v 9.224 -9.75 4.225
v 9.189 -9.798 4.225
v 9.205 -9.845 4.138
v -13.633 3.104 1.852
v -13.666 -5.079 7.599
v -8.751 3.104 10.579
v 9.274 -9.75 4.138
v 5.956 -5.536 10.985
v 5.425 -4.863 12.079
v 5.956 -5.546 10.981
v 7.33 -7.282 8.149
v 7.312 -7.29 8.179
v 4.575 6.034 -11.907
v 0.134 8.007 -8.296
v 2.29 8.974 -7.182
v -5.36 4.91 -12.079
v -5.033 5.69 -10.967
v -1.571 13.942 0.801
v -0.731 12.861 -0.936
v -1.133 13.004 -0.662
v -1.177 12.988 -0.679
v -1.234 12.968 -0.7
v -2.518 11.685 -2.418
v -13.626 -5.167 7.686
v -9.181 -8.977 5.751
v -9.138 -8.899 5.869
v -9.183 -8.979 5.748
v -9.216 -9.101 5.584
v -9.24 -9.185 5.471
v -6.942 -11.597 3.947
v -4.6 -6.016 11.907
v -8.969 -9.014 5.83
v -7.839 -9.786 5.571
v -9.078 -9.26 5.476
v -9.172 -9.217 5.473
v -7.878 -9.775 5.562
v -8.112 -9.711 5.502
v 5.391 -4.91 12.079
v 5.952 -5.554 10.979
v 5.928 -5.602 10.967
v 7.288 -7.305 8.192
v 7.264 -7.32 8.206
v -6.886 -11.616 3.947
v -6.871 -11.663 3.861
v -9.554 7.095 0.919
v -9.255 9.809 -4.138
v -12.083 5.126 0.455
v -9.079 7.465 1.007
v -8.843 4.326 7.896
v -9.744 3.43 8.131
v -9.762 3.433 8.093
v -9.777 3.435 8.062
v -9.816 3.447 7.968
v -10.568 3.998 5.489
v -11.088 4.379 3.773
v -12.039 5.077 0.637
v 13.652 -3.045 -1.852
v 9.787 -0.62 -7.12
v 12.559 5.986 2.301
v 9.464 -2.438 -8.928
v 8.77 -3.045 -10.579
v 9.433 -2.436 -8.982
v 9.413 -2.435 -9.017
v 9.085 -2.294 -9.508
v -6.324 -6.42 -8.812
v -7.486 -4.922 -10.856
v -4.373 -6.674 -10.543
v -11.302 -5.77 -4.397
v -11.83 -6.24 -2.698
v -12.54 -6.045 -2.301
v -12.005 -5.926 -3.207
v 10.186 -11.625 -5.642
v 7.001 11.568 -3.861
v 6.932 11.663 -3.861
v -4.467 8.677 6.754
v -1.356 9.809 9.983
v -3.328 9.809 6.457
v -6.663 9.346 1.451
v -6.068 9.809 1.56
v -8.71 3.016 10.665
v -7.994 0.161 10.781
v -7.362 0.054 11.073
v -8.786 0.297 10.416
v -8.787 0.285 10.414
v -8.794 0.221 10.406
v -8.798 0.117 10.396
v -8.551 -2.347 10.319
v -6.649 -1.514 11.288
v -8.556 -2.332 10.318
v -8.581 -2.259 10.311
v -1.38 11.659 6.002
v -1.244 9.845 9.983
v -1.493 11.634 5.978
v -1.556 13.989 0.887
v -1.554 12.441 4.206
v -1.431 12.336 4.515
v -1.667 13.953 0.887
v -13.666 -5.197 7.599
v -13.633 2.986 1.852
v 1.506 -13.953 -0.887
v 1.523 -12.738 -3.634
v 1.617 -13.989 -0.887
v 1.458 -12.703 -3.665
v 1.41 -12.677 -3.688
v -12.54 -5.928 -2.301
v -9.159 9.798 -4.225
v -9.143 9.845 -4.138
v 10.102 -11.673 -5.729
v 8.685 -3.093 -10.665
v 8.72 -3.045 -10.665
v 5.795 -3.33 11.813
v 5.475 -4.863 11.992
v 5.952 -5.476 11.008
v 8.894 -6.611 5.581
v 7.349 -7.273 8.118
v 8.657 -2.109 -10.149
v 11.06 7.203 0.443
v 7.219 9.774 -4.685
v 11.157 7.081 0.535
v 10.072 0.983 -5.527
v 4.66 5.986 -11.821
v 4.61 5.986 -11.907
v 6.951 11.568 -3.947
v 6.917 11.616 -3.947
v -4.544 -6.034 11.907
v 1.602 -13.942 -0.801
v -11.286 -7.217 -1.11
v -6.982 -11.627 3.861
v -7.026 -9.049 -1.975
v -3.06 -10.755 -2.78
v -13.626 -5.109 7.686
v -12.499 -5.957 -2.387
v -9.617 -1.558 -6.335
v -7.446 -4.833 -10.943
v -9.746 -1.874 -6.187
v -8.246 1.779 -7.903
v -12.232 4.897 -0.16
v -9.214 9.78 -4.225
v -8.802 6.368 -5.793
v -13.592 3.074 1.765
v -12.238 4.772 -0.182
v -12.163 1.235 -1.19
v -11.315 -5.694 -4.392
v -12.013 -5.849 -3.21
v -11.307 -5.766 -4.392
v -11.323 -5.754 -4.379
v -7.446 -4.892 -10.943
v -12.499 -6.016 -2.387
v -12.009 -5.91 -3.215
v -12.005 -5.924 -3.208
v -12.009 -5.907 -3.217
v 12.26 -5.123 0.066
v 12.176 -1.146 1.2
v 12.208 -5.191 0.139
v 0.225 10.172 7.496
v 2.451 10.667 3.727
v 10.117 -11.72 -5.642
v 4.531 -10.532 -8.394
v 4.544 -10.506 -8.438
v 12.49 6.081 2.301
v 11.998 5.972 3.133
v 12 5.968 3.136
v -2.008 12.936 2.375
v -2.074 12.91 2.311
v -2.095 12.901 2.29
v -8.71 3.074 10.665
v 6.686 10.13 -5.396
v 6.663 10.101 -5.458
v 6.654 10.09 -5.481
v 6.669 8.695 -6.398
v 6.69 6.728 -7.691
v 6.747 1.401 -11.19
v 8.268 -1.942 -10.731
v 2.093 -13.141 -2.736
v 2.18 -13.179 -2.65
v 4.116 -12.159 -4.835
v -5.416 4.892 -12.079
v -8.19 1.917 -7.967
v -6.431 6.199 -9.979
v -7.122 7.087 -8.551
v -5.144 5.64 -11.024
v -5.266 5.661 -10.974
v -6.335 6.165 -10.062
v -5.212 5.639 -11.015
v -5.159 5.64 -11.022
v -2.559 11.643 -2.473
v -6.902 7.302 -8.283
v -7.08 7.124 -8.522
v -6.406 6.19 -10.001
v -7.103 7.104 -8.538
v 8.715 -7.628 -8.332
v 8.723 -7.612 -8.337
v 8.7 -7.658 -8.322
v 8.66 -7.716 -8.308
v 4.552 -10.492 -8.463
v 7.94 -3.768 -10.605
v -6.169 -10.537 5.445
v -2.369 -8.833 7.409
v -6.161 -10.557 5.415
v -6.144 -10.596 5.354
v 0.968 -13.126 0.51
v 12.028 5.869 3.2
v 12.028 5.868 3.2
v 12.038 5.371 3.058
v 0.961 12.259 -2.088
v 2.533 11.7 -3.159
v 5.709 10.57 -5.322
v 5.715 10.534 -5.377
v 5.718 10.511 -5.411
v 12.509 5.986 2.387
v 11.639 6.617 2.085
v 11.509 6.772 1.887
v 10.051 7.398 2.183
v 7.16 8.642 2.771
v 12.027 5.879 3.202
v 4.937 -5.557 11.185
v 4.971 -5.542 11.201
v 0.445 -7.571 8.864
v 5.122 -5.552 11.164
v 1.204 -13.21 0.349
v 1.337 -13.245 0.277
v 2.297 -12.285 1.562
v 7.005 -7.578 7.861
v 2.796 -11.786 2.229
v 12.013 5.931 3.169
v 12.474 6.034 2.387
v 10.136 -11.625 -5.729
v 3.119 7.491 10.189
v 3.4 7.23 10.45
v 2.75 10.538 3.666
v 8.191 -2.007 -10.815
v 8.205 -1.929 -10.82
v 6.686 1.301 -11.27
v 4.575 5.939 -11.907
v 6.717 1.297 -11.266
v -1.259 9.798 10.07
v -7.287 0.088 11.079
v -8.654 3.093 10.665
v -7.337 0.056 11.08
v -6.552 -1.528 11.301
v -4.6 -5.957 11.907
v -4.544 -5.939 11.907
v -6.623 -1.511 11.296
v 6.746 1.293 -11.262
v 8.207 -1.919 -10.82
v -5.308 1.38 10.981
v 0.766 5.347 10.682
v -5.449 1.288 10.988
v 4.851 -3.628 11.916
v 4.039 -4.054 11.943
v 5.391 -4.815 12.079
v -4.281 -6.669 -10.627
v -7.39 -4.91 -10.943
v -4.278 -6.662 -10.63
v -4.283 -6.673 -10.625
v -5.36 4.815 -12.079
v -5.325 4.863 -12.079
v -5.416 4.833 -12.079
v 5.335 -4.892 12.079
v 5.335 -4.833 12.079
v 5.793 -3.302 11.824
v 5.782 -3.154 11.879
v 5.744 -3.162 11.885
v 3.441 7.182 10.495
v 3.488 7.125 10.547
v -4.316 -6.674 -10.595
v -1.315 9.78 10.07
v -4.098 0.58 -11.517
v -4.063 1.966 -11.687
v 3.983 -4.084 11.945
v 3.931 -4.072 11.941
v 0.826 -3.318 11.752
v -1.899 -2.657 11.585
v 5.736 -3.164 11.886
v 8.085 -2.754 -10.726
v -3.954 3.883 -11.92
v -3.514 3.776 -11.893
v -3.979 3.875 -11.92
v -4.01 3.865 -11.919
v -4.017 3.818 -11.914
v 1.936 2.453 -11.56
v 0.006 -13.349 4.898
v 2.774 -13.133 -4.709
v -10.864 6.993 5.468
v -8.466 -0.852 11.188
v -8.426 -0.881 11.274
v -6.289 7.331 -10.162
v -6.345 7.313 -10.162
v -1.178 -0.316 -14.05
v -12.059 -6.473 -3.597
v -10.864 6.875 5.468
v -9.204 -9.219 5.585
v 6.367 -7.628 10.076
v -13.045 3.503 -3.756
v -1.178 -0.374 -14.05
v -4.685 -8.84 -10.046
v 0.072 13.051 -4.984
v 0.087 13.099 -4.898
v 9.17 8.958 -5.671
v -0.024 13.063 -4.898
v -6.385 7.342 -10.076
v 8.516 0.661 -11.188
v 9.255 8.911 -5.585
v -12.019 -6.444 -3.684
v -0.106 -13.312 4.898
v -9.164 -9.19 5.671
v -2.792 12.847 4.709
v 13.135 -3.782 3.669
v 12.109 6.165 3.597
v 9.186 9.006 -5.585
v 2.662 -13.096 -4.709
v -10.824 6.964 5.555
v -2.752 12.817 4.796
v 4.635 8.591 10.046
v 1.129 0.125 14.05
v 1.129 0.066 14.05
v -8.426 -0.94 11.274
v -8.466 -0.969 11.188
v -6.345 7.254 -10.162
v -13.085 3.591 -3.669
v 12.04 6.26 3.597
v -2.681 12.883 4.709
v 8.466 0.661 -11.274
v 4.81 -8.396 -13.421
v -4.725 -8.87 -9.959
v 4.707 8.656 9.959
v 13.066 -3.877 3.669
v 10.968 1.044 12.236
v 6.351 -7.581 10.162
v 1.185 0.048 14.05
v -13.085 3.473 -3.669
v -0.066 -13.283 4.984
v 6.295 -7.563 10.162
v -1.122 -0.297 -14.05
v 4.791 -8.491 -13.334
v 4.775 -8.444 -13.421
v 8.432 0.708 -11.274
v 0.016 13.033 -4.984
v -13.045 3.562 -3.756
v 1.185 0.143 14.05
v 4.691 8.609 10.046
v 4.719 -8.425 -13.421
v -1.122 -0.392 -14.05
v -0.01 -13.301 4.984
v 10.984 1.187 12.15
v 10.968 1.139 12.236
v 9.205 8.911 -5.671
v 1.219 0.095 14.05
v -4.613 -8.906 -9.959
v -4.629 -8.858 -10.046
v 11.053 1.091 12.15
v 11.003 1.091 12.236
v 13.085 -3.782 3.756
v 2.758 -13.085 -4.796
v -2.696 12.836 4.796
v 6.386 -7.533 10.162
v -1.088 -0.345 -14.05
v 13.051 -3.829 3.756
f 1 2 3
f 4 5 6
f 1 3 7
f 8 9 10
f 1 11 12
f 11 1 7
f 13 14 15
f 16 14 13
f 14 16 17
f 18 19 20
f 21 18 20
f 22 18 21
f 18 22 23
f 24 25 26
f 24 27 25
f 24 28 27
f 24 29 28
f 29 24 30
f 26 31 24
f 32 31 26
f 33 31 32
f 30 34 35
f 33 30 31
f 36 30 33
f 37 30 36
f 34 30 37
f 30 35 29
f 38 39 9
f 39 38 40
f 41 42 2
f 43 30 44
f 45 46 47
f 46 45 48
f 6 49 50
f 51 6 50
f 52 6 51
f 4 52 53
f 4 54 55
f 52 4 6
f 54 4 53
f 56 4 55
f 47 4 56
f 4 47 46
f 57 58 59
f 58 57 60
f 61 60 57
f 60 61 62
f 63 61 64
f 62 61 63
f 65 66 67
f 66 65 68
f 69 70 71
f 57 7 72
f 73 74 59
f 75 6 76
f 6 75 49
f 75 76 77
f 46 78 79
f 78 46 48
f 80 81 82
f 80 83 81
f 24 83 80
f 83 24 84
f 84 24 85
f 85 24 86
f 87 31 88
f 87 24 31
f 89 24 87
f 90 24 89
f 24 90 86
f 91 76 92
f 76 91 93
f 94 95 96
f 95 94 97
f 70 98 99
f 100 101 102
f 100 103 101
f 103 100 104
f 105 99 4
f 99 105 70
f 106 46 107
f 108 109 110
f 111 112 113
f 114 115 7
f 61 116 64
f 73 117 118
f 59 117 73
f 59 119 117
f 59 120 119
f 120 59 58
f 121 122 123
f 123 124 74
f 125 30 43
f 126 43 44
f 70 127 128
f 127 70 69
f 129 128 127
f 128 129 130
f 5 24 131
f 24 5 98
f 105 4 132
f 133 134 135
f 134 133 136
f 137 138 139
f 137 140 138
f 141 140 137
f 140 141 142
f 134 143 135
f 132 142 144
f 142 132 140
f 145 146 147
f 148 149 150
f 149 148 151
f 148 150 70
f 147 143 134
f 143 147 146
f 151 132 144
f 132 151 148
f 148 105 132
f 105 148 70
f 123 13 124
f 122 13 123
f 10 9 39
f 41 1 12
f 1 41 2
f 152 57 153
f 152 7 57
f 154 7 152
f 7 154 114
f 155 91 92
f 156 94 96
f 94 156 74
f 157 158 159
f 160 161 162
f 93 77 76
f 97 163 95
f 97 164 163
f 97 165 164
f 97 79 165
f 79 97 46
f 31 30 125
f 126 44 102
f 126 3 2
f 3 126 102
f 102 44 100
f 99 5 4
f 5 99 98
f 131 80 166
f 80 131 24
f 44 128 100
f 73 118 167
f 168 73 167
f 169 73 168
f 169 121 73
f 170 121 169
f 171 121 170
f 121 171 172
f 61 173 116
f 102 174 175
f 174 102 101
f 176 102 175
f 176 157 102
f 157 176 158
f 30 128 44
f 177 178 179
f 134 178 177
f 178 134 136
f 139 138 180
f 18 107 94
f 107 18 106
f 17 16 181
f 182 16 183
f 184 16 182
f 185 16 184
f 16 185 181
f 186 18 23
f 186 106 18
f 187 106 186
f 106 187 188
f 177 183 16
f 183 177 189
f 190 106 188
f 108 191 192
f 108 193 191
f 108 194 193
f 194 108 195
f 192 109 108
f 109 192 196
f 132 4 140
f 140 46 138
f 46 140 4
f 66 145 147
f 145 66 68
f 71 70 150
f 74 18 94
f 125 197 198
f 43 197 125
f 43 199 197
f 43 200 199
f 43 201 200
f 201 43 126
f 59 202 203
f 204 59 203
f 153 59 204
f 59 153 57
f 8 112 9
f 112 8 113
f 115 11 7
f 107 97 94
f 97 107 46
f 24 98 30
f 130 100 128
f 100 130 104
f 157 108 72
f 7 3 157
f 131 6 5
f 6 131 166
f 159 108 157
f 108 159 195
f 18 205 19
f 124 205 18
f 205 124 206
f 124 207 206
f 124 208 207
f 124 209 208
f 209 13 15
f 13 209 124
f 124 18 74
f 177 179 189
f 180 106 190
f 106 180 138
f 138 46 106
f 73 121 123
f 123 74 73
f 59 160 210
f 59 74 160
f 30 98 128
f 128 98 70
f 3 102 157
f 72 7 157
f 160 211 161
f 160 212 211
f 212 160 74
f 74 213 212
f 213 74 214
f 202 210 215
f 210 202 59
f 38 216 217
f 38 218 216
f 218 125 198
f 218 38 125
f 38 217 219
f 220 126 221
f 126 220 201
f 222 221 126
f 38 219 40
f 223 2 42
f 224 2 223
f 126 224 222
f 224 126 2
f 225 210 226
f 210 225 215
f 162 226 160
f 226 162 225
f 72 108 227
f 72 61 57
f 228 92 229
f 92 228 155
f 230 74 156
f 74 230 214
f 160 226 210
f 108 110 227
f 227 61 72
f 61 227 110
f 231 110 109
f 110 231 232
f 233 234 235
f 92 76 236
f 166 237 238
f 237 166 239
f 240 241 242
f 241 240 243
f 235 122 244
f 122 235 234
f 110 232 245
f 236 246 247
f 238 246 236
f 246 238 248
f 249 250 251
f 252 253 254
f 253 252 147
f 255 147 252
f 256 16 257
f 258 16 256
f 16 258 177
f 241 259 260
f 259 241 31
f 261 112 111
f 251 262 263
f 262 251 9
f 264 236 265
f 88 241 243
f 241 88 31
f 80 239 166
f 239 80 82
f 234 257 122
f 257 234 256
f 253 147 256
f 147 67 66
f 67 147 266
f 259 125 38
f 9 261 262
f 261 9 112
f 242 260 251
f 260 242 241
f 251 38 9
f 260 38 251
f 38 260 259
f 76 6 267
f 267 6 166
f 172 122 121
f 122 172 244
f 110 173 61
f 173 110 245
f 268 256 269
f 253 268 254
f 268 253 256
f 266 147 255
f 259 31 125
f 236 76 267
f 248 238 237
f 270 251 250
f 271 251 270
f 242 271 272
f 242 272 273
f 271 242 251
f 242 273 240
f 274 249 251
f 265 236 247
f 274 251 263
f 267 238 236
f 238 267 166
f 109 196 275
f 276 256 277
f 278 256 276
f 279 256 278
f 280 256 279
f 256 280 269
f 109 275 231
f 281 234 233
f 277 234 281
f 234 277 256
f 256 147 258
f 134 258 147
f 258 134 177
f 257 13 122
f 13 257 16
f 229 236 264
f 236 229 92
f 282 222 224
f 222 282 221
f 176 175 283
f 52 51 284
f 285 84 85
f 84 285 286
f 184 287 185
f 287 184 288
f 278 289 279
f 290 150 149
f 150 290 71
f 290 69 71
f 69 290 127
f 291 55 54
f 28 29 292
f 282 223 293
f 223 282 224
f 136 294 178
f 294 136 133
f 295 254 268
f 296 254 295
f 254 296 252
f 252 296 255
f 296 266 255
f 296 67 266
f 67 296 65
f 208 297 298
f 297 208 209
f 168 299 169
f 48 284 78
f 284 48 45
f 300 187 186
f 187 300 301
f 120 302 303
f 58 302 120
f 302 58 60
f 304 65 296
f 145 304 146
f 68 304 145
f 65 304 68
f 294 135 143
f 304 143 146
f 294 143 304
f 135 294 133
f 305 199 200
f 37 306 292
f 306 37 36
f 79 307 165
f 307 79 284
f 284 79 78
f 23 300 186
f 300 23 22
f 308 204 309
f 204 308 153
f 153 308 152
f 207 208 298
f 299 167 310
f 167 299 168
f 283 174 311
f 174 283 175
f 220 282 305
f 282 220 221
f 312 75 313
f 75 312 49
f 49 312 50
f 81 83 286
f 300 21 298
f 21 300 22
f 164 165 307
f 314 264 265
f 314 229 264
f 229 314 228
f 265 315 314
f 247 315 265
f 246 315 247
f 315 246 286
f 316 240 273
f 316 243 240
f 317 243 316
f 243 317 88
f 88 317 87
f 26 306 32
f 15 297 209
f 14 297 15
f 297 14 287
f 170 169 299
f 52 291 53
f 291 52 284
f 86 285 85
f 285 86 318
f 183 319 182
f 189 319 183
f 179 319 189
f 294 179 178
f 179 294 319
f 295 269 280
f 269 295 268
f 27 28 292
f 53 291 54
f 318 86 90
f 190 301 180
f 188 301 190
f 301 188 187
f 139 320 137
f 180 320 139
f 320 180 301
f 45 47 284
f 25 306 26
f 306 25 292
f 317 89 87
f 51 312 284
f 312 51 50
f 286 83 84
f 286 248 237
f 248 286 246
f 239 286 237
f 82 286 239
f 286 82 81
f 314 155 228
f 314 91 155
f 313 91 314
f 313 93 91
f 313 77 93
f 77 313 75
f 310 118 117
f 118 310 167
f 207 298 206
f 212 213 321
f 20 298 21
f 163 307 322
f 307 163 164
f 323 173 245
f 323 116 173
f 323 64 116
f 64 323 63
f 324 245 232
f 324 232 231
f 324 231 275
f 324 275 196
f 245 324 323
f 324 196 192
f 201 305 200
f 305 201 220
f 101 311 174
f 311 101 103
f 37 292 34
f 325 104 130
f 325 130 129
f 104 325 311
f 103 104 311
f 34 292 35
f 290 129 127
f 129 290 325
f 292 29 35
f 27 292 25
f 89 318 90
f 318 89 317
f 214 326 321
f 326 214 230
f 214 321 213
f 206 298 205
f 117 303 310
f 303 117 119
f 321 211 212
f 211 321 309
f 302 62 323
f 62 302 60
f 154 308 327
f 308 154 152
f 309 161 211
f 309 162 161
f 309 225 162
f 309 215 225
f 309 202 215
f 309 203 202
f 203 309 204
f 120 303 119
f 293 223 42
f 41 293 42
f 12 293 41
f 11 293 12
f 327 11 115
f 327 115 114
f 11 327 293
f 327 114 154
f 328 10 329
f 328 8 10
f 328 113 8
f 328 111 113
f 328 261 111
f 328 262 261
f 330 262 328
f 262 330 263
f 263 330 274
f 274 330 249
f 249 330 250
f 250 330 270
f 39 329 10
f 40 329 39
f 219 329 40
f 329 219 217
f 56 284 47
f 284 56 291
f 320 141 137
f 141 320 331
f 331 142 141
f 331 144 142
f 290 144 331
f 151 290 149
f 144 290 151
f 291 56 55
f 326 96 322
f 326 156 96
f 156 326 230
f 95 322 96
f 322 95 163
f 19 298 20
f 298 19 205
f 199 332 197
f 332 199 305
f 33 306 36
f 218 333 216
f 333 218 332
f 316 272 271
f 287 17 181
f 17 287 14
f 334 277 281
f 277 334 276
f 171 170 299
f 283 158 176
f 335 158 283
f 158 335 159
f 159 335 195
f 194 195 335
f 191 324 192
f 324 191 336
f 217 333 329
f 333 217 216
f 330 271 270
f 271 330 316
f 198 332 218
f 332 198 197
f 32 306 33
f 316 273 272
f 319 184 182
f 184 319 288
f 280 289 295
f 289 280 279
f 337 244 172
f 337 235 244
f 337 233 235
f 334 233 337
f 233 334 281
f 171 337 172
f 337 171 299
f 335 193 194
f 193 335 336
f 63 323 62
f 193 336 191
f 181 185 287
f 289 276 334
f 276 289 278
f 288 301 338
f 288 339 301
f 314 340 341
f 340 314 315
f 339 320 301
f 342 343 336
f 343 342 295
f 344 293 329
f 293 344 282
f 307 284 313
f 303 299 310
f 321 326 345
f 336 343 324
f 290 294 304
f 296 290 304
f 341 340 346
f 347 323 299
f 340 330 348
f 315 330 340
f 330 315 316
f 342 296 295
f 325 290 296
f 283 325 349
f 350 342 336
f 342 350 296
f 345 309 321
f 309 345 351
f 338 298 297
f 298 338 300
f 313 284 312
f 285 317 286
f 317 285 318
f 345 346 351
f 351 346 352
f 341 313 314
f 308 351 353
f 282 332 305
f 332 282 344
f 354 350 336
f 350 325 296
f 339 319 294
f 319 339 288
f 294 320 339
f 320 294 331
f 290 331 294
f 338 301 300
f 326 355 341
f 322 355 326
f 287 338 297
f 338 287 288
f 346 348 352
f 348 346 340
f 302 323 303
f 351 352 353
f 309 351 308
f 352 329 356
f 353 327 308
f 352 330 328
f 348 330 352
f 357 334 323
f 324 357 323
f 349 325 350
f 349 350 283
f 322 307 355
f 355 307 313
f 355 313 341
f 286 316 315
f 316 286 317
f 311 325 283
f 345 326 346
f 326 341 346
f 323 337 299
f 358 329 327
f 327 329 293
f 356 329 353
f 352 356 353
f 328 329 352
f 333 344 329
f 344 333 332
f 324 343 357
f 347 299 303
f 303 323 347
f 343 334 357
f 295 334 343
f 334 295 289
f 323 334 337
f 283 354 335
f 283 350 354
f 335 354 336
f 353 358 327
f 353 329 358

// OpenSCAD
// Auto-generated OpenSCAD file

    inner_points = 10*[[1.0814810122881062, -0.7183738797289009, -0.5468250446206121], [-1.3004127886071162, 0.35322504522391734, -0.366937214163524], [1.303539873942325, -0.3781851139200541, 0.366937214163524], [-1.0783539269528974, 0.693413811032764, 0.5468250446206121], [-0.002530637731901048, -1.325352391133482, 0.48977025638353333], [-0.9123331120812015, -0.9160380241093531, 0.5584812934556624], [0.9154601974164103, 0.8910779554132162, -0.5584812934556624], [0.005657723067109926, 1.300392322437345, -0.48977025638353333], [-0.46443592982219944, -0.8810934394293531, -0.9959320939274633], [0.11692171749165503, 0.00953231204908575, 1.3963285572062816], [-0.11379463215644614, -0.03449238074522254, -1.3963285572062816], [0.46756301515740833, 0.8561333707332163, 0.9959320939274633], [0.27428504436946866, -1.303755450078493, -0.47091004958709537], [-1.197806282176454, -0.6414708921498036, -0.3597332562021365], [0.6335838300291047, -0.7533184644089008, 1.0075883427625139], [-0.8385074965168178, -0.09103390648021122, 1.1187651361474726], [0.8416345818520266, 0.06607383778407443, -1.1187651361474726], [-0.6304567446938959, 0.728358395712764, -1.0075883427625139], [1.2009333675116627, 0.6165108234536667, 0.3597332562021365], [-0.27115795903425977, 1.278795381382356, 0.47091004958709537], [0.4759894926735763, -0.839597012174386, -1.3333903450470872], [1.0952793220598376, 0.1091399180587309, 1.2149595344691149]];

    outer_points = 10*[[0.15864682006284056, -1.3894175827447022, -0.08874378178914308], [0.6901488531106656, 1.1567979453568165, -0.38605513301949795], [-0.6901488531106656, -1.1567979453568165, 0.38605513301949795], [-0.15864682006284056, 1.3894175827447022, 0.08874378178914308], [-0.7405582699303093, -0.4862838945260085, -1.0856458512447171], [-0.5375425583957099, 0.4862838945260085, -1.1992086821735548], [0.5375425583957099, -0.4862838945260085, 1.1992086821735548], [0.7405582699303093, 0.4862838945260085, 1.0856458512447171], [0.8669924232504709, -0.30450305856608023, -1.0578882346035428], [-1.3551834986216158, 0.30450305856608023, 0.18515146218704537], [1.3551834986216158, -0.30450305856608023, -0.18515146218704537], [-0.8669924232504709, 0.30450305856608023, 1.0578882346035428], [0.12749208711524018, -0.9750171093968881, -0.9983050113411022], [0.45597840862846595, 0.5986306296526133, -1.1820535316426193], [-1.2458881615833401, -0.5986306296526133, -0.23006422935915521], [-0.9174018400701144, 0.9750171093968881, -0.4138127496606724], [0.9174018400701144, -0.9750171093968881, 0.4138127496606724], [1.2458881615833401, 0.5986306296526133, 0.23006422935915521], [-0.45597840862846595, -0.5986306296526133, 1.1820535316426193], [-0.12749208711524018, 0.9750171093968881, 0.9983050113411022], [1.008624136050673, -1.1625333737755705, -0.5642036833860836], [-1.358543396501757, -0.5137910787071536, 0.7599413507467598]];

    // Convex hull for inner set (I)
    module inner_hull() {
        hull() {
            for (p = inner_points) {
                translate(p) sphere(r=0.1);
            }
        }
    }

    // Convex hull for outer set (O) minus inner hull (O \ I)
    module outer_minus_inner() {
        difference() {
            hull() {
                for (p = outer_points) {
                    translate(p) sphere(r=0.1);
                }
            }
            inner_hull(); // Subtract inner hull
        }
    }

    // Convex hull for outer set (O) minus all translated inner hulls
    module outer_minus_AllTranslationInner() {
        difference() {
            hull() {
                for (p = outer_points) {
                    translate(p) sphere(r=0.1);
                }
            }
            hull() {
                translate([0,0,50]) inner_hull();
                translate([0,0,-50]) inner_hull();
            }; // Subtract translated inner hulls
        }
    }

    // Difference between outer_minus_inner and outer_minus_AllTranslationInner
    module outer_minus_inner_diff() {
        difference() {
            // Outer minus inner
            difference() {
                hull() {
                    for (p = outer_points) {
                        translate(p) sphere(r=0.1);
                    }
                }
                inner_hull();
            }

            // Subtract Outer minus AllTranslationInner
            difference() {
                hull() {
                    for (p = outer_points) {
                        translate(p) sphere(r=0.1);
                    }
                }
                hull() {
                    translate([0,0,50]) inner_hull();
                    translate([0,0,-50]) inner_hull();
                };
            }
        }
    }

    // Rendering all with colors applied
    color([1, 0, 0, 0.5]) inner_hull(); // Transparent red
    color([0, 1, 0, 1]) outer_minus_AllTranslationInner(); // Opaque green
    color([1, 1, 0, 1]) outer_minus_inner_diff(); // Opaque yellow
    
